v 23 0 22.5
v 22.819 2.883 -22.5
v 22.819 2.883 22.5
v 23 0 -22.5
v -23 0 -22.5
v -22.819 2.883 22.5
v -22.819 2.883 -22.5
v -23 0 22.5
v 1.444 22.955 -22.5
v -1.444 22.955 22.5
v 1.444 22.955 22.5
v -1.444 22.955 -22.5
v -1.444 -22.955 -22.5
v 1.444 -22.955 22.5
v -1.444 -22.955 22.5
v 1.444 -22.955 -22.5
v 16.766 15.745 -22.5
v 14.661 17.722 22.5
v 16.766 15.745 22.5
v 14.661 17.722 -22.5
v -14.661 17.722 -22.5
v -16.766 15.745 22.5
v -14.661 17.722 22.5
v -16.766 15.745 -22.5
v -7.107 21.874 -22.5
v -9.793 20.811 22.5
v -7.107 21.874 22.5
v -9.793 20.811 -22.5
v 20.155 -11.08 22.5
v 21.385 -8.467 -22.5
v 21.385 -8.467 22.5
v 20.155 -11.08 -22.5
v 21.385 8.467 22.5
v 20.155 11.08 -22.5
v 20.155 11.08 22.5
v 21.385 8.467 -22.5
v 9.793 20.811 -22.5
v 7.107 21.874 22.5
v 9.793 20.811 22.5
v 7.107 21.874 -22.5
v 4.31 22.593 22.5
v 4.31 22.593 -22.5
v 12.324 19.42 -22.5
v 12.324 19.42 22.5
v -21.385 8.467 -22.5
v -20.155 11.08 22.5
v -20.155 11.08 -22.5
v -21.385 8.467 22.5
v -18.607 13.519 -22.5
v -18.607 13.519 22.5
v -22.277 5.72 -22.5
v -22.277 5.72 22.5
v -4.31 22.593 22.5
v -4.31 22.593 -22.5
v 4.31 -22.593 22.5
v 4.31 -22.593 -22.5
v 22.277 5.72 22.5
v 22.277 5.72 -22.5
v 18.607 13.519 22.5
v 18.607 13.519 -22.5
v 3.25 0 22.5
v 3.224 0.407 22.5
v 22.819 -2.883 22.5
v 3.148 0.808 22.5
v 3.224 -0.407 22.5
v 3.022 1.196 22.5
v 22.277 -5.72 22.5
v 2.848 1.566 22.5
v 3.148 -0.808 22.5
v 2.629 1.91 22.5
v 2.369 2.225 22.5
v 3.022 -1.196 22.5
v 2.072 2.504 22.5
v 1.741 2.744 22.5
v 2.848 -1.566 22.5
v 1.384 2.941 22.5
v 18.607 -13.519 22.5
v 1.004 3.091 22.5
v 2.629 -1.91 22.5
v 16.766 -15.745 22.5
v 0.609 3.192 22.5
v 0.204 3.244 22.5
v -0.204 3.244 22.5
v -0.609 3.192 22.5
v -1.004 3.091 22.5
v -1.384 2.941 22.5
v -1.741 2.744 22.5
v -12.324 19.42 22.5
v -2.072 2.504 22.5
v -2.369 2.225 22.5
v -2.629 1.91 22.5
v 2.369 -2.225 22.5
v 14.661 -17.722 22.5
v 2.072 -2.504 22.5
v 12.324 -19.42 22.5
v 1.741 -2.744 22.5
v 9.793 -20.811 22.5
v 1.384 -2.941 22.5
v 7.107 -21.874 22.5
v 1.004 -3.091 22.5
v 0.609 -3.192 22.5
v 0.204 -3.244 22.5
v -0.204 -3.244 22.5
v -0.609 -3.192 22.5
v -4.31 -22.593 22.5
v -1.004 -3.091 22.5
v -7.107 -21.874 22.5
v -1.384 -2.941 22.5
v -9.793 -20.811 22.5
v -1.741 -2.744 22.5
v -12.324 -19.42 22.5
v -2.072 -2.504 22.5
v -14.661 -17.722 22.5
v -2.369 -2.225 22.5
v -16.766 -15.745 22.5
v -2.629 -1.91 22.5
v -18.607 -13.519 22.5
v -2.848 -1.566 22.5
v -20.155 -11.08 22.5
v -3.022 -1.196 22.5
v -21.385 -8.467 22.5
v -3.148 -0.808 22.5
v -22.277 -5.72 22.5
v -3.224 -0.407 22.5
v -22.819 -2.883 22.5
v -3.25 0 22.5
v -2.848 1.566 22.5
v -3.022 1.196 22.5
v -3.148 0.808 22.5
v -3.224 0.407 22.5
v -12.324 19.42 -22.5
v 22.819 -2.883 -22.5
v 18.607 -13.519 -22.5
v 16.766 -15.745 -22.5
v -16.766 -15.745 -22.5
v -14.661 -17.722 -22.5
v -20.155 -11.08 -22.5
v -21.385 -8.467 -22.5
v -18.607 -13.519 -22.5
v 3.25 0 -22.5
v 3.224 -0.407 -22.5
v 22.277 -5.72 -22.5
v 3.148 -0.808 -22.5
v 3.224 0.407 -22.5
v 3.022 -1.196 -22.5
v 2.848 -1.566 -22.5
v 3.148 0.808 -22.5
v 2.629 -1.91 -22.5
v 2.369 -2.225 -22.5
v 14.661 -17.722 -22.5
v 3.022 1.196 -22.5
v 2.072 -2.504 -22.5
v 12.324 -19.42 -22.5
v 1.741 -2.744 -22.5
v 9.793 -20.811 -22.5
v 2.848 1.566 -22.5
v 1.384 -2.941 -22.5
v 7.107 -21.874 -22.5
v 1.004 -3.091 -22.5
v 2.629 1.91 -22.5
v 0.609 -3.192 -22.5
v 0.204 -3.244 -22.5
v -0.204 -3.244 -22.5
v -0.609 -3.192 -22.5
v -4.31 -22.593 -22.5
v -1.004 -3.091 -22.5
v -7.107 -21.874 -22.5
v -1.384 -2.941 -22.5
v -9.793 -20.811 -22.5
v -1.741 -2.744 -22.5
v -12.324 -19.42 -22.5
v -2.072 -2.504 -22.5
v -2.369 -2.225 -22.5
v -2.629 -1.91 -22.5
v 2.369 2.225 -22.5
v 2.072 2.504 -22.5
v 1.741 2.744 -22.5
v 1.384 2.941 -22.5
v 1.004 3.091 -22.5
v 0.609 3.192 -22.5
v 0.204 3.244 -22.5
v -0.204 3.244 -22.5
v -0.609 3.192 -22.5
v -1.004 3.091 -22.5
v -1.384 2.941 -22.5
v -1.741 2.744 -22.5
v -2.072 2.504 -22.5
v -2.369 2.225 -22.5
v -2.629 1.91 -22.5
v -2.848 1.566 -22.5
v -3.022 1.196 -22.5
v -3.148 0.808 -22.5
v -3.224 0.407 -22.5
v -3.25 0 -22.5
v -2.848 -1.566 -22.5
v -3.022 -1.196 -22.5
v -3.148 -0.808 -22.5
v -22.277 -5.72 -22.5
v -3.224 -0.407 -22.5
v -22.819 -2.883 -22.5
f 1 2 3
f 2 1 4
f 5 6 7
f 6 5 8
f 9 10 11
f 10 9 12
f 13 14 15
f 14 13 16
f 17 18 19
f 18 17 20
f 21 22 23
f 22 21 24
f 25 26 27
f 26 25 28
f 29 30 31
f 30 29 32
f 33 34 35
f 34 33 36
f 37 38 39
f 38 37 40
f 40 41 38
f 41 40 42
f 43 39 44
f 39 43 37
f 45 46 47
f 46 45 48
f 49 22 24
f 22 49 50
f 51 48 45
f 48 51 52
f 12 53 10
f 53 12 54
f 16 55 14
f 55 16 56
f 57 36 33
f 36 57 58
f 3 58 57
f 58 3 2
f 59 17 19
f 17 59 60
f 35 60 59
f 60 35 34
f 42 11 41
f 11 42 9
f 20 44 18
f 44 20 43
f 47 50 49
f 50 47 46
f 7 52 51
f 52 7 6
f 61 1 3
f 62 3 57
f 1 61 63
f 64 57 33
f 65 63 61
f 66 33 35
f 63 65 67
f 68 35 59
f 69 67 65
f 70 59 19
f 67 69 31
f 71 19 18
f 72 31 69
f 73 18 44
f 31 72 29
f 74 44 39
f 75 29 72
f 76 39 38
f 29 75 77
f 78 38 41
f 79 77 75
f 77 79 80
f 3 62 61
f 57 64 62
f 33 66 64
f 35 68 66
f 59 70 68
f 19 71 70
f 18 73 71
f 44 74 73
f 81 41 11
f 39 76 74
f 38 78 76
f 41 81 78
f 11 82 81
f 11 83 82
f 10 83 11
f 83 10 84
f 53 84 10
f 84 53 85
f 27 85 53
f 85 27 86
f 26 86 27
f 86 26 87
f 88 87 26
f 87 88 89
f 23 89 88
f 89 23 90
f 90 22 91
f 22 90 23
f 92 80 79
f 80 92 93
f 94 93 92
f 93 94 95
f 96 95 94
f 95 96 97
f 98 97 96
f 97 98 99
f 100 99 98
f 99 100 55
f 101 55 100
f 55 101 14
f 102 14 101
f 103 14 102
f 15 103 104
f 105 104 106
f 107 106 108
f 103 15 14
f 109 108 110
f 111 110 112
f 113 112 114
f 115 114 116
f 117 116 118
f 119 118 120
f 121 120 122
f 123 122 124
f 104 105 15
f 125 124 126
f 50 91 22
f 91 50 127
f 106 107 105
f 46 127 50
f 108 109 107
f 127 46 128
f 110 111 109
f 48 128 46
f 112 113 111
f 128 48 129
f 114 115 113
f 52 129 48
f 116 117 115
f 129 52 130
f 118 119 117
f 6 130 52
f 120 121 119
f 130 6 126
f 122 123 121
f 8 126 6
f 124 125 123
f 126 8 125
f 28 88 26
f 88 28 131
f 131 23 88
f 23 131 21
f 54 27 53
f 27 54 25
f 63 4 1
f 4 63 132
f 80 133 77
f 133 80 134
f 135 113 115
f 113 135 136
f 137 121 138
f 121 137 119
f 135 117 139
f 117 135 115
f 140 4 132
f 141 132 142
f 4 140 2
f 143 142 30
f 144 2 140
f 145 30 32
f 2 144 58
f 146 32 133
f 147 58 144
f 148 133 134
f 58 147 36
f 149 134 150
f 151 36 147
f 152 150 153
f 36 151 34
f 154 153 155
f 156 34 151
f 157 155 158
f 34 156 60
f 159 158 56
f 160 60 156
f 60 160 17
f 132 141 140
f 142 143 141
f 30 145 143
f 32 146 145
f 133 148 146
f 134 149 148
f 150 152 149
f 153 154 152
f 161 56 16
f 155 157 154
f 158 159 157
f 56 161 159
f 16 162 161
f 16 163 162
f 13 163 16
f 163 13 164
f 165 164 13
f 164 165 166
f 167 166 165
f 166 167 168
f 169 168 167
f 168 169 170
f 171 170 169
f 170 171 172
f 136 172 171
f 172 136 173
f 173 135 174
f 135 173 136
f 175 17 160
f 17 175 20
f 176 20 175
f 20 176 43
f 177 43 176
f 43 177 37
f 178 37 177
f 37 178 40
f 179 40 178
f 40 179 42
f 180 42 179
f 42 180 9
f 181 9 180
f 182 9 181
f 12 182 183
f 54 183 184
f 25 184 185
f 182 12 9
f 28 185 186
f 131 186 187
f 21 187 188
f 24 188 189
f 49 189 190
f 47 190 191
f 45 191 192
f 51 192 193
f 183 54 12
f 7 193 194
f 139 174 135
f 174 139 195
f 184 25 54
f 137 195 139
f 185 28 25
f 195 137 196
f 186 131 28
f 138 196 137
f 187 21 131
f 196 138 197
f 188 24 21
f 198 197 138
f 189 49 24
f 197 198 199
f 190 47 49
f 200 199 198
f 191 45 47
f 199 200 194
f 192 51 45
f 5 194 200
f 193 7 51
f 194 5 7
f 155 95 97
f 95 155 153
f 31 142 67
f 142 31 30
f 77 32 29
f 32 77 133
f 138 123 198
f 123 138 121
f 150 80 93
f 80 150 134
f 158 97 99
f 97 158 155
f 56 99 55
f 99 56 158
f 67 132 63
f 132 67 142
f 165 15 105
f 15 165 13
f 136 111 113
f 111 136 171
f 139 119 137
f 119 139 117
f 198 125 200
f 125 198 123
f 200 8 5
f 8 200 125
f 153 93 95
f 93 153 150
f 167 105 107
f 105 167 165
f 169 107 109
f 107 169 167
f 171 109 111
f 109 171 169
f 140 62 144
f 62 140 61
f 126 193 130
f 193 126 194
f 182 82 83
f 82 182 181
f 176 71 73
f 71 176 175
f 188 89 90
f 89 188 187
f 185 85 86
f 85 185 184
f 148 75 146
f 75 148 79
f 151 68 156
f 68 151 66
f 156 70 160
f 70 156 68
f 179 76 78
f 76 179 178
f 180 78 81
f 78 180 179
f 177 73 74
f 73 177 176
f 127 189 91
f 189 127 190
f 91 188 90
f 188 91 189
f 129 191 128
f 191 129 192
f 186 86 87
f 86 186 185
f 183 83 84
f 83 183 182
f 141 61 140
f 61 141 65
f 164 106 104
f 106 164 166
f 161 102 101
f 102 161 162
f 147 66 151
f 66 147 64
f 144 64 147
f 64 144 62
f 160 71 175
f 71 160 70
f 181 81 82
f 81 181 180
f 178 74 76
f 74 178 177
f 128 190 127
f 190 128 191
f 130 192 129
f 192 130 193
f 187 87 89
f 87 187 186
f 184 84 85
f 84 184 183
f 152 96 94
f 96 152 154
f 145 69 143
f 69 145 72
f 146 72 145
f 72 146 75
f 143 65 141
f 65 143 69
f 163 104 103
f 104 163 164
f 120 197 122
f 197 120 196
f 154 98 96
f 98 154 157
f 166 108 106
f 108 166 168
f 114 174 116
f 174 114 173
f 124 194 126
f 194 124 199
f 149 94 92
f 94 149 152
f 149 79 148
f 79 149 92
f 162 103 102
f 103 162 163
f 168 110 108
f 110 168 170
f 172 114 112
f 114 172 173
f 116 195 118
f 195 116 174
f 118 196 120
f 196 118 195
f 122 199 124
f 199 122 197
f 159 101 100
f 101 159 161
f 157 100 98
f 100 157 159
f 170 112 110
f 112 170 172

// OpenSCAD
$fn = 50;


difference() {
	union() {
		translate(v = [0, 0, -22.5000000000]) {
			cylinder(h = 45, r = 23.0000000000);
		}
	}
	union() {
		translate(v = [0, 0, -100.0000000000]) {
			cylinder(h = 200, r = 3.2500000000);
		}
	}
}
